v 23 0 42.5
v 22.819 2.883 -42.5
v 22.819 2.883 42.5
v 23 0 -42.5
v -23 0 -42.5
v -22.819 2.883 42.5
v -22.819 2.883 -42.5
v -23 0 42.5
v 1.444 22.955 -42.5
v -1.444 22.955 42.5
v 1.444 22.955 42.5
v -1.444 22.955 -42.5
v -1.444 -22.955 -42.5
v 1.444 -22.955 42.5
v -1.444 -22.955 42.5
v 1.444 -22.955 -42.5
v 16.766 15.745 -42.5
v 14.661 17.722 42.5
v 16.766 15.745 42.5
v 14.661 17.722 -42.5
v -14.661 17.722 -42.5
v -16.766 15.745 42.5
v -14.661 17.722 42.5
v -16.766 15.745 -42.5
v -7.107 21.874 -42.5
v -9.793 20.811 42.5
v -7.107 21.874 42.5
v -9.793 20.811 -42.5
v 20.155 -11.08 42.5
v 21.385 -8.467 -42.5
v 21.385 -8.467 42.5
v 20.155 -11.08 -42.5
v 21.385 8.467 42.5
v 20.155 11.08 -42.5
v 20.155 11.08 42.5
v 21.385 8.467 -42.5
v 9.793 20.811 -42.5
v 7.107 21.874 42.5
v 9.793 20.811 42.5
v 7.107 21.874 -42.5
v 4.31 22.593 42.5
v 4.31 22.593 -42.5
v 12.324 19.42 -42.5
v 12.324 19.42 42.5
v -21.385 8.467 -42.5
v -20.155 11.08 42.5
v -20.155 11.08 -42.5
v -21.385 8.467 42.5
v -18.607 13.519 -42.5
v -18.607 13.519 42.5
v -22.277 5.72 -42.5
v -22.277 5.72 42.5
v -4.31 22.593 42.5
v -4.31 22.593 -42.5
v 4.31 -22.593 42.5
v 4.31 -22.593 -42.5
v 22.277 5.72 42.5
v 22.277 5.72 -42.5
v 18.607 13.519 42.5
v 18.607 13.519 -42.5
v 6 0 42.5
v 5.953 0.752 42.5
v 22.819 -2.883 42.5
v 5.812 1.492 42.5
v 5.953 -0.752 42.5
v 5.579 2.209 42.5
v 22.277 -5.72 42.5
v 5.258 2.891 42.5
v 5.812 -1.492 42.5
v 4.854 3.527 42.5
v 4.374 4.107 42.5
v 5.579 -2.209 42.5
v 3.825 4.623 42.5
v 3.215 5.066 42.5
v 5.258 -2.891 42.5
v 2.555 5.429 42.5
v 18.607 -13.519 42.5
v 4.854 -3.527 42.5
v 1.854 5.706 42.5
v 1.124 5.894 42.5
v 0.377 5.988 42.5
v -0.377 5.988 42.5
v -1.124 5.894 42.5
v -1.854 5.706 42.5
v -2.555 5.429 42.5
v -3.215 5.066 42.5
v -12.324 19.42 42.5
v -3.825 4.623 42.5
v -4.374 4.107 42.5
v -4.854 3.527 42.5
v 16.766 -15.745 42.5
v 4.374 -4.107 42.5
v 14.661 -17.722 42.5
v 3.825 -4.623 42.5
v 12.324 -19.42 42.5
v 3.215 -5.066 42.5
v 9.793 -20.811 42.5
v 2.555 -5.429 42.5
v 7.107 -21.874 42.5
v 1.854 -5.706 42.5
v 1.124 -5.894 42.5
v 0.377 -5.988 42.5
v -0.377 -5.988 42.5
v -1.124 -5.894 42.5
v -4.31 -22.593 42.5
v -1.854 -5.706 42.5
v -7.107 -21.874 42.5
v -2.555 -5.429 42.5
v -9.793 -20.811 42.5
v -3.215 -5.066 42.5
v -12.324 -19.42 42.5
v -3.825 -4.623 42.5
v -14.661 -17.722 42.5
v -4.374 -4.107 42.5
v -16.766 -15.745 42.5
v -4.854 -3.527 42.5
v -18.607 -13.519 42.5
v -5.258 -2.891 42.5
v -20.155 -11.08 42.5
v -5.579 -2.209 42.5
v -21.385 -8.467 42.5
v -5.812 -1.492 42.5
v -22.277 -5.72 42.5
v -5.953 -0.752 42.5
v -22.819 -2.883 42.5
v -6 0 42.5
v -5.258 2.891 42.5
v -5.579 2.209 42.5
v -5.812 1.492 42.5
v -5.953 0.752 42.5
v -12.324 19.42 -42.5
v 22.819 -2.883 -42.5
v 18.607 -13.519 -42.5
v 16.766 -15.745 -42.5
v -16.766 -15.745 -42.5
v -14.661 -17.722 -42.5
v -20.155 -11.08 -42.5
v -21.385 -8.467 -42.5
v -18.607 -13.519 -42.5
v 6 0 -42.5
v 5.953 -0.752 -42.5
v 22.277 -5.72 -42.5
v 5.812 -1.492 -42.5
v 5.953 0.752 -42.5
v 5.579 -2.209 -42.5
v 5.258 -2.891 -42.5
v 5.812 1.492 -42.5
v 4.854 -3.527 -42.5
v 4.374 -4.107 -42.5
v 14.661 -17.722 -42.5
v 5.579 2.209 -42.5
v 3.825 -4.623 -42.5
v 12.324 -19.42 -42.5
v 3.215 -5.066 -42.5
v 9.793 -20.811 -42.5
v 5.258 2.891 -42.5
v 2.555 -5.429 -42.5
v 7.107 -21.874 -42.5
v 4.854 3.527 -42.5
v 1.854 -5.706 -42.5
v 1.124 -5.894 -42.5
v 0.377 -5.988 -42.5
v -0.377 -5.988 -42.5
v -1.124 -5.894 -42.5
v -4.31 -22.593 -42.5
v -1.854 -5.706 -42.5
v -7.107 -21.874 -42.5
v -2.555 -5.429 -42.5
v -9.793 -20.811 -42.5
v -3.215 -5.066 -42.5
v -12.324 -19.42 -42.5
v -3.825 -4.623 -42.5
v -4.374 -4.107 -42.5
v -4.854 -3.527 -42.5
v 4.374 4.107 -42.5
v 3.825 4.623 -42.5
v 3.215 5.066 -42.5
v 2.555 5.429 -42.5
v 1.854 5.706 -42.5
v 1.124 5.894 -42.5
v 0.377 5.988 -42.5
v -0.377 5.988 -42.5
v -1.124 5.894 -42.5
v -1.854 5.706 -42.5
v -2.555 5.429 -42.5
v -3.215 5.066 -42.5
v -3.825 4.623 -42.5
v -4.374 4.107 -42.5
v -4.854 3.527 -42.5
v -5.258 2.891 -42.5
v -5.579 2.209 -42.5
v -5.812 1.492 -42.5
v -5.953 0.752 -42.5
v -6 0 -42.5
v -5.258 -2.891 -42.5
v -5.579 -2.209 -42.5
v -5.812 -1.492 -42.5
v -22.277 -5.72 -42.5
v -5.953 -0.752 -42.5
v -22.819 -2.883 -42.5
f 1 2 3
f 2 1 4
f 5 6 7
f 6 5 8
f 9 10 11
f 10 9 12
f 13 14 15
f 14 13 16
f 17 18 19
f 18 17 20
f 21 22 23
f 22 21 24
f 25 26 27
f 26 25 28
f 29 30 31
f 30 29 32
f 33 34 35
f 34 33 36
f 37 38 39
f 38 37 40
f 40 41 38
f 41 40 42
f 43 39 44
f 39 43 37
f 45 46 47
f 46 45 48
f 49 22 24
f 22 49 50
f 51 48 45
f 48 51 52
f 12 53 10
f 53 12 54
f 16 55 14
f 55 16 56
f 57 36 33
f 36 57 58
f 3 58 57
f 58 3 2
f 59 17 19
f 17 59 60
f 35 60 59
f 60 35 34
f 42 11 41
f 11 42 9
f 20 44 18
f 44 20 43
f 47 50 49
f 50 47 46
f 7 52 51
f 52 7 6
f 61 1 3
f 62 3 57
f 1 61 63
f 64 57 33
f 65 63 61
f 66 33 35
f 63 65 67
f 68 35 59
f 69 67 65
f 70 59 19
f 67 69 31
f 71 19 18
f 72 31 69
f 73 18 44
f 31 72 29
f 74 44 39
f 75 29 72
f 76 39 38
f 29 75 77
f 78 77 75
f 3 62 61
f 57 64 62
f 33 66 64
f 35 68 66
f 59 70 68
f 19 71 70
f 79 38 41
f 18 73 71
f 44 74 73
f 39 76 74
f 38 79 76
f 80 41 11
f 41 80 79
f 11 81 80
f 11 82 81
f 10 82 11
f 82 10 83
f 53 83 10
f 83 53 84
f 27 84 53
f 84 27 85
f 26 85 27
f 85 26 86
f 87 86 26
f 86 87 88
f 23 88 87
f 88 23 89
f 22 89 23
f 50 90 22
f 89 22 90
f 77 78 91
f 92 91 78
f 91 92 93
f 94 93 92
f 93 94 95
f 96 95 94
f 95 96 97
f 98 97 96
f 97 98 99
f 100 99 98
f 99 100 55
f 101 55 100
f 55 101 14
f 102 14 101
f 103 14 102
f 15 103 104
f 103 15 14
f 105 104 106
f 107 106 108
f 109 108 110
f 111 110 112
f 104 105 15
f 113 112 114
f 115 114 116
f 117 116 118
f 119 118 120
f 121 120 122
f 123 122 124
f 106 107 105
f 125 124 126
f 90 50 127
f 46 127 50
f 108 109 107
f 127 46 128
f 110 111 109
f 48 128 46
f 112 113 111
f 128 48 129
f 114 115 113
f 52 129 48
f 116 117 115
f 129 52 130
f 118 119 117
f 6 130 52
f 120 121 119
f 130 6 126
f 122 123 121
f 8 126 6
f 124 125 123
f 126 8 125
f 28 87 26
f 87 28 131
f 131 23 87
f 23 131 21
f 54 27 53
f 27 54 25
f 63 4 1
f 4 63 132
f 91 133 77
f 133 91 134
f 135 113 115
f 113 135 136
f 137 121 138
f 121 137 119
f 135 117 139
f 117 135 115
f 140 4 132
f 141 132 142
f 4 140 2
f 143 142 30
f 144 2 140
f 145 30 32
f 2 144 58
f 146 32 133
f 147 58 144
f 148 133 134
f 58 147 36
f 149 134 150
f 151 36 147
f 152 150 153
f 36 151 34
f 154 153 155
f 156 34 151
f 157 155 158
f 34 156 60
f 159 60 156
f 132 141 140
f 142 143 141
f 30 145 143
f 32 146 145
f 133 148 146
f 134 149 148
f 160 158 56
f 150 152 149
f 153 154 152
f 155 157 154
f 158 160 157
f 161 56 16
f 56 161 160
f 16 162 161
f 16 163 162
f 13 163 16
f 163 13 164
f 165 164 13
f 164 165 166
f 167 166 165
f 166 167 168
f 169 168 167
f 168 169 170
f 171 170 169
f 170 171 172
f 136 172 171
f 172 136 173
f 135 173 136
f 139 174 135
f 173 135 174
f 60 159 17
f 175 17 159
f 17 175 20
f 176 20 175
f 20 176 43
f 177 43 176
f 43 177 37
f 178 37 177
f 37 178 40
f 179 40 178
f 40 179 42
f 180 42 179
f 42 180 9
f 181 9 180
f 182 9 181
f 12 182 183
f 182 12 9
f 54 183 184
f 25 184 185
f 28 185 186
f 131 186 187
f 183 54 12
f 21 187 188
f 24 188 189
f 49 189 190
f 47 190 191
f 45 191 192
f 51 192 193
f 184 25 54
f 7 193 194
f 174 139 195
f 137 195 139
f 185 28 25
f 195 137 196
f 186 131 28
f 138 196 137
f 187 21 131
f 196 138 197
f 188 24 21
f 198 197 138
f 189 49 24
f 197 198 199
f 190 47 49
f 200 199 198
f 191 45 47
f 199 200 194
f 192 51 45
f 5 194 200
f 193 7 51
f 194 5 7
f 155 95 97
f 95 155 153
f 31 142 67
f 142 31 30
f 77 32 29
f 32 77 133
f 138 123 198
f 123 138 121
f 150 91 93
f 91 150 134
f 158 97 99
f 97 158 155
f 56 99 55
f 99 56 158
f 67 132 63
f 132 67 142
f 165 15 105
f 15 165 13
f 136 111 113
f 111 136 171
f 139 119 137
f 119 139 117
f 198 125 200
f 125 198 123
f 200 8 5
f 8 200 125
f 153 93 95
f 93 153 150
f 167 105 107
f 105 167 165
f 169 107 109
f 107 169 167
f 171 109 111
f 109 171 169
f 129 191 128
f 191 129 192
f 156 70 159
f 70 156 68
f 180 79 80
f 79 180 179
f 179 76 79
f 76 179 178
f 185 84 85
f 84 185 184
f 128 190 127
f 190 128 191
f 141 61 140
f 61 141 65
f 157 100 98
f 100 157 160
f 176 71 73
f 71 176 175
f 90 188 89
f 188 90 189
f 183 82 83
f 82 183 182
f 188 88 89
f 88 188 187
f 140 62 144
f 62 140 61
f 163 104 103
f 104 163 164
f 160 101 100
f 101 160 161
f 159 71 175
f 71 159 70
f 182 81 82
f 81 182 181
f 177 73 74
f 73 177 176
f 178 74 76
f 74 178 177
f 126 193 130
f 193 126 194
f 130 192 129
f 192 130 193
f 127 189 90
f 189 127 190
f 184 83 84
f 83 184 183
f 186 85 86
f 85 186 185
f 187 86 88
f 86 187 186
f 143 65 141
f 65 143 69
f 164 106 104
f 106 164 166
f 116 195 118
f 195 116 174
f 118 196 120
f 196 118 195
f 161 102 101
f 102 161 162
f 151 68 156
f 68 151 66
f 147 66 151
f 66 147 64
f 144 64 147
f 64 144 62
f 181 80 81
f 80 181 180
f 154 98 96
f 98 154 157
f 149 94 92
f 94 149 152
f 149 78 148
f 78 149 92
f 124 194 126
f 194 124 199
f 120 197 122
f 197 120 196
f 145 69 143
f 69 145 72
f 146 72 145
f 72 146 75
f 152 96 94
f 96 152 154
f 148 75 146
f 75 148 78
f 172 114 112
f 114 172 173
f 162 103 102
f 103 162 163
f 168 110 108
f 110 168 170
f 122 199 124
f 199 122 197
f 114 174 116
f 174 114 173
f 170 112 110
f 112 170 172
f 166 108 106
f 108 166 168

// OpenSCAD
$fn = 50;


difference() {
	union() {
		translate(v = [0, 0, -42.5000000000]) {
			cylinder(h = 85, r = 23.0000000000);
		}
	}
	union() {
		translate(v = [0, 0, -100.0000000000]) {
			cylinder(h = 200, r = 6);
		}
	}
}
